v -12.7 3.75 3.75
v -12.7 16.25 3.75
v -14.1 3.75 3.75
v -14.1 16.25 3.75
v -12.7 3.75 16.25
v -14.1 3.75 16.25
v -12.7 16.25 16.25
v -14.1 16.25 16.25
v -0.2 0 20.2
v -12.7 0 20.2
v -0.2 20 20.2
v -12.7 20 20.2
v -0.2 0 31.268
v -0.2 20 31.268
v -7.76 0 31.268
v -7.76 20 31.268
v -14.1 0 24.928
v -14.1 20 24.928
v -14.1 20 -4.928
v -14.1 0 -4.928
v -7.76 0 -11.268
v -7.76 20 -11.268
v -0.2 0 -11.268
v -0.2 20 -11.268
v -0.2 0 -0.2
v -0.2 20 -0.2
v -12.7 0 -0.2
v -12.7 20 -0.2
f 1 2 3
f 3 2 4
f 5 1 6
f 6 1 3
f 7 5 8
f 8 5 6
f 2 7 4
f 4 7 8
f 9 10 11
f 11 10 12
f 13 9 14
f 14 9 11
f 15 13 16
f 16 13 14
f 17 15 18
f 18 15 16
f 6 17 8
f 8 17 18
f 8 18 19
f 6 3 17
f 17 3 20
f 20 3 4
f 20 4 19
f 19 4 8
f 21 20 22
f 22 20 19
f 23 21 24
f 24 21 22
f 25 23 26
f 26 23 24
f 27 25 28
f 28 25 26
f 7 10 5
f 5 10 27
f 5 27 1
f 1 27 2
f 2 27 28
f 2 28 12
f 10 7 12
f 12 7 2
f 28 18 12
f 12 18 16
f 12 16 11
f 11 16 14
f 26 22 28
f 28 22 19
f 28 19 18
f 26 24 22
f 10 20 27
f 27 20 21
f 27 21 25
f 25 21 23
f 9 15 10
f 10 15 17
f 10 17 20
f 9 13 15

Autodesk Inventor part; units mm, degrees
ref_plane "YZ Plane" through (0, 0, 0) normal (1, 0, 0) x (0, 1, 0)
ref_plane "XZ Plane" through (0, 0, 0) normal (0, 1, 0) x (-1, 0, 0)
ref_plane "XY Plane" through (0, 0, 0) normal (0, 0, 1) x (1, 0, 0)
sketch "Sketch1" plane through (0, 0, 0) normal (0, 1, 0) x (-1, 0, 0)
  line L0 (0, 0) -> (0, -11.468)
  line L1 (0, -11.468) -> (7.843, -11.468)
  line L2 (14.3, -5.011) -> (14.3, 10)
  line L3 (12.5, 10) -> (0, 10)
  line L4 (14.3, -5.011) -> (7.843, -11.468)
  line L5 (0, 0) -> (12.5, 0)
  line L6 (12.5, 0) -> (12.5, 10)
  line L7 (0, 20) -> (0, 31.468)
  line L8 (0, 31.468) -> (7.843, 31.468)
  line L9 (14.3, 25.011) -> (14.3, 10)
  line L10 (14.3, 25.011) -> (7.843, 31.468)
  line L11 (0, 20) -> (12.5, 20)
  line L12 (12.5, 20) -> (12.5, 10)
  line L13 (0.2, -11.268) -> (0.2, -0.2)
  line L14 (0.2, -0.2) -> (12.7, -0.2)
  line L15 (12.7, -0.2) -> (12.7, 10)
  line L16 (12.7, 10) -> (12.7, 20.2)
  line L17 (12.7, 20.2) -> (0.2, 20.2)
  line L18 (0.2, 20.2) -> (0.2, 31.268)
  line L19 (0.2, 31.268) -> (7.7602, 31.268)
  line L20 (7.7602, 31.268) -> (14.1, 24.9282)
  line L21 (14.1, 24.9282) -> (14.1, 10)
  line L22 (14.1, 10) -> (14.1, -4.9282)
  line L23 (14.1, -4.9282) -> (7.7602, -11.268)
  line L24 (7.7602, -11.268) -> (0.2, -11.268)
  point P0 (14.3, -11.468)
  point P1 (14.3, 31.468)
  dimension "d0" = 11.468
  dimension "d1" = 14.3
  dimension "d2" = 21.468
  dimension "d3" = 6.457
  dimension "d4" = 6.457
  dimension "d5" = 12.5
  dimension "d8" = 0.2
extrude "Extrusion1" add sketch "Sketch1" along normal blind 20 contours L13 L14 L15 L16 L17 L18 L19 L20 L21 L22 L23 L24
sketch "Sketch2" plane through (-14.1, 0, -4.9282) normal (-1, 0, 0) x (0, 0, 1)
  line L0 (0, 0) -> (29.8563, 0) projected
  line L1 (29.8563, 0) -> (29.8563, 20) projected
  line L2 (0, 20) -> (29.8563, 20) projected
  line L3 (0, 0) -> (0, 20) projected
  line L4 (0, 20) -> (29.8563, 20) projected
  line L5 (14.9282, 20) -> (14.9282, 0)
  line L6 (0, 0) -> (29.8563, 0) projected
  line L7 (29.8563, 0) -> (29.8563, 20) projected
  line L8 (29.8563, 10) -> (0, 10)
  line L9 (0, 0) -> (0, 20) projected
  line L10 (8.6782, 16.25) -> (21.1782, 16.25)
  line L11 (21.1782, 16.25) -> (21.1782, 3.75)
  line L12 (21.1782, 3.75) -> (8.6782, 3.75)
  line L13 (8.6782, 3.75) -> (8.6782, 16.25)
  point P0 (4.9282, 0)
  dimension "d9" = 12.5
  dimension "d10" = 12.5
  dimension "d11" = 6.25
  dimension "d12" = 6.25
extrude "Extrusion2" cut sketch "Sketch2" against normal blind 20 contours L12 L13 L8 L5 | L5 L8 L11 L12 | L13 L10 L5 L8 | L5 L10 L11 L8
equation "\"d4\" = d3"
properties part number "latticeChamberHolderv1"
